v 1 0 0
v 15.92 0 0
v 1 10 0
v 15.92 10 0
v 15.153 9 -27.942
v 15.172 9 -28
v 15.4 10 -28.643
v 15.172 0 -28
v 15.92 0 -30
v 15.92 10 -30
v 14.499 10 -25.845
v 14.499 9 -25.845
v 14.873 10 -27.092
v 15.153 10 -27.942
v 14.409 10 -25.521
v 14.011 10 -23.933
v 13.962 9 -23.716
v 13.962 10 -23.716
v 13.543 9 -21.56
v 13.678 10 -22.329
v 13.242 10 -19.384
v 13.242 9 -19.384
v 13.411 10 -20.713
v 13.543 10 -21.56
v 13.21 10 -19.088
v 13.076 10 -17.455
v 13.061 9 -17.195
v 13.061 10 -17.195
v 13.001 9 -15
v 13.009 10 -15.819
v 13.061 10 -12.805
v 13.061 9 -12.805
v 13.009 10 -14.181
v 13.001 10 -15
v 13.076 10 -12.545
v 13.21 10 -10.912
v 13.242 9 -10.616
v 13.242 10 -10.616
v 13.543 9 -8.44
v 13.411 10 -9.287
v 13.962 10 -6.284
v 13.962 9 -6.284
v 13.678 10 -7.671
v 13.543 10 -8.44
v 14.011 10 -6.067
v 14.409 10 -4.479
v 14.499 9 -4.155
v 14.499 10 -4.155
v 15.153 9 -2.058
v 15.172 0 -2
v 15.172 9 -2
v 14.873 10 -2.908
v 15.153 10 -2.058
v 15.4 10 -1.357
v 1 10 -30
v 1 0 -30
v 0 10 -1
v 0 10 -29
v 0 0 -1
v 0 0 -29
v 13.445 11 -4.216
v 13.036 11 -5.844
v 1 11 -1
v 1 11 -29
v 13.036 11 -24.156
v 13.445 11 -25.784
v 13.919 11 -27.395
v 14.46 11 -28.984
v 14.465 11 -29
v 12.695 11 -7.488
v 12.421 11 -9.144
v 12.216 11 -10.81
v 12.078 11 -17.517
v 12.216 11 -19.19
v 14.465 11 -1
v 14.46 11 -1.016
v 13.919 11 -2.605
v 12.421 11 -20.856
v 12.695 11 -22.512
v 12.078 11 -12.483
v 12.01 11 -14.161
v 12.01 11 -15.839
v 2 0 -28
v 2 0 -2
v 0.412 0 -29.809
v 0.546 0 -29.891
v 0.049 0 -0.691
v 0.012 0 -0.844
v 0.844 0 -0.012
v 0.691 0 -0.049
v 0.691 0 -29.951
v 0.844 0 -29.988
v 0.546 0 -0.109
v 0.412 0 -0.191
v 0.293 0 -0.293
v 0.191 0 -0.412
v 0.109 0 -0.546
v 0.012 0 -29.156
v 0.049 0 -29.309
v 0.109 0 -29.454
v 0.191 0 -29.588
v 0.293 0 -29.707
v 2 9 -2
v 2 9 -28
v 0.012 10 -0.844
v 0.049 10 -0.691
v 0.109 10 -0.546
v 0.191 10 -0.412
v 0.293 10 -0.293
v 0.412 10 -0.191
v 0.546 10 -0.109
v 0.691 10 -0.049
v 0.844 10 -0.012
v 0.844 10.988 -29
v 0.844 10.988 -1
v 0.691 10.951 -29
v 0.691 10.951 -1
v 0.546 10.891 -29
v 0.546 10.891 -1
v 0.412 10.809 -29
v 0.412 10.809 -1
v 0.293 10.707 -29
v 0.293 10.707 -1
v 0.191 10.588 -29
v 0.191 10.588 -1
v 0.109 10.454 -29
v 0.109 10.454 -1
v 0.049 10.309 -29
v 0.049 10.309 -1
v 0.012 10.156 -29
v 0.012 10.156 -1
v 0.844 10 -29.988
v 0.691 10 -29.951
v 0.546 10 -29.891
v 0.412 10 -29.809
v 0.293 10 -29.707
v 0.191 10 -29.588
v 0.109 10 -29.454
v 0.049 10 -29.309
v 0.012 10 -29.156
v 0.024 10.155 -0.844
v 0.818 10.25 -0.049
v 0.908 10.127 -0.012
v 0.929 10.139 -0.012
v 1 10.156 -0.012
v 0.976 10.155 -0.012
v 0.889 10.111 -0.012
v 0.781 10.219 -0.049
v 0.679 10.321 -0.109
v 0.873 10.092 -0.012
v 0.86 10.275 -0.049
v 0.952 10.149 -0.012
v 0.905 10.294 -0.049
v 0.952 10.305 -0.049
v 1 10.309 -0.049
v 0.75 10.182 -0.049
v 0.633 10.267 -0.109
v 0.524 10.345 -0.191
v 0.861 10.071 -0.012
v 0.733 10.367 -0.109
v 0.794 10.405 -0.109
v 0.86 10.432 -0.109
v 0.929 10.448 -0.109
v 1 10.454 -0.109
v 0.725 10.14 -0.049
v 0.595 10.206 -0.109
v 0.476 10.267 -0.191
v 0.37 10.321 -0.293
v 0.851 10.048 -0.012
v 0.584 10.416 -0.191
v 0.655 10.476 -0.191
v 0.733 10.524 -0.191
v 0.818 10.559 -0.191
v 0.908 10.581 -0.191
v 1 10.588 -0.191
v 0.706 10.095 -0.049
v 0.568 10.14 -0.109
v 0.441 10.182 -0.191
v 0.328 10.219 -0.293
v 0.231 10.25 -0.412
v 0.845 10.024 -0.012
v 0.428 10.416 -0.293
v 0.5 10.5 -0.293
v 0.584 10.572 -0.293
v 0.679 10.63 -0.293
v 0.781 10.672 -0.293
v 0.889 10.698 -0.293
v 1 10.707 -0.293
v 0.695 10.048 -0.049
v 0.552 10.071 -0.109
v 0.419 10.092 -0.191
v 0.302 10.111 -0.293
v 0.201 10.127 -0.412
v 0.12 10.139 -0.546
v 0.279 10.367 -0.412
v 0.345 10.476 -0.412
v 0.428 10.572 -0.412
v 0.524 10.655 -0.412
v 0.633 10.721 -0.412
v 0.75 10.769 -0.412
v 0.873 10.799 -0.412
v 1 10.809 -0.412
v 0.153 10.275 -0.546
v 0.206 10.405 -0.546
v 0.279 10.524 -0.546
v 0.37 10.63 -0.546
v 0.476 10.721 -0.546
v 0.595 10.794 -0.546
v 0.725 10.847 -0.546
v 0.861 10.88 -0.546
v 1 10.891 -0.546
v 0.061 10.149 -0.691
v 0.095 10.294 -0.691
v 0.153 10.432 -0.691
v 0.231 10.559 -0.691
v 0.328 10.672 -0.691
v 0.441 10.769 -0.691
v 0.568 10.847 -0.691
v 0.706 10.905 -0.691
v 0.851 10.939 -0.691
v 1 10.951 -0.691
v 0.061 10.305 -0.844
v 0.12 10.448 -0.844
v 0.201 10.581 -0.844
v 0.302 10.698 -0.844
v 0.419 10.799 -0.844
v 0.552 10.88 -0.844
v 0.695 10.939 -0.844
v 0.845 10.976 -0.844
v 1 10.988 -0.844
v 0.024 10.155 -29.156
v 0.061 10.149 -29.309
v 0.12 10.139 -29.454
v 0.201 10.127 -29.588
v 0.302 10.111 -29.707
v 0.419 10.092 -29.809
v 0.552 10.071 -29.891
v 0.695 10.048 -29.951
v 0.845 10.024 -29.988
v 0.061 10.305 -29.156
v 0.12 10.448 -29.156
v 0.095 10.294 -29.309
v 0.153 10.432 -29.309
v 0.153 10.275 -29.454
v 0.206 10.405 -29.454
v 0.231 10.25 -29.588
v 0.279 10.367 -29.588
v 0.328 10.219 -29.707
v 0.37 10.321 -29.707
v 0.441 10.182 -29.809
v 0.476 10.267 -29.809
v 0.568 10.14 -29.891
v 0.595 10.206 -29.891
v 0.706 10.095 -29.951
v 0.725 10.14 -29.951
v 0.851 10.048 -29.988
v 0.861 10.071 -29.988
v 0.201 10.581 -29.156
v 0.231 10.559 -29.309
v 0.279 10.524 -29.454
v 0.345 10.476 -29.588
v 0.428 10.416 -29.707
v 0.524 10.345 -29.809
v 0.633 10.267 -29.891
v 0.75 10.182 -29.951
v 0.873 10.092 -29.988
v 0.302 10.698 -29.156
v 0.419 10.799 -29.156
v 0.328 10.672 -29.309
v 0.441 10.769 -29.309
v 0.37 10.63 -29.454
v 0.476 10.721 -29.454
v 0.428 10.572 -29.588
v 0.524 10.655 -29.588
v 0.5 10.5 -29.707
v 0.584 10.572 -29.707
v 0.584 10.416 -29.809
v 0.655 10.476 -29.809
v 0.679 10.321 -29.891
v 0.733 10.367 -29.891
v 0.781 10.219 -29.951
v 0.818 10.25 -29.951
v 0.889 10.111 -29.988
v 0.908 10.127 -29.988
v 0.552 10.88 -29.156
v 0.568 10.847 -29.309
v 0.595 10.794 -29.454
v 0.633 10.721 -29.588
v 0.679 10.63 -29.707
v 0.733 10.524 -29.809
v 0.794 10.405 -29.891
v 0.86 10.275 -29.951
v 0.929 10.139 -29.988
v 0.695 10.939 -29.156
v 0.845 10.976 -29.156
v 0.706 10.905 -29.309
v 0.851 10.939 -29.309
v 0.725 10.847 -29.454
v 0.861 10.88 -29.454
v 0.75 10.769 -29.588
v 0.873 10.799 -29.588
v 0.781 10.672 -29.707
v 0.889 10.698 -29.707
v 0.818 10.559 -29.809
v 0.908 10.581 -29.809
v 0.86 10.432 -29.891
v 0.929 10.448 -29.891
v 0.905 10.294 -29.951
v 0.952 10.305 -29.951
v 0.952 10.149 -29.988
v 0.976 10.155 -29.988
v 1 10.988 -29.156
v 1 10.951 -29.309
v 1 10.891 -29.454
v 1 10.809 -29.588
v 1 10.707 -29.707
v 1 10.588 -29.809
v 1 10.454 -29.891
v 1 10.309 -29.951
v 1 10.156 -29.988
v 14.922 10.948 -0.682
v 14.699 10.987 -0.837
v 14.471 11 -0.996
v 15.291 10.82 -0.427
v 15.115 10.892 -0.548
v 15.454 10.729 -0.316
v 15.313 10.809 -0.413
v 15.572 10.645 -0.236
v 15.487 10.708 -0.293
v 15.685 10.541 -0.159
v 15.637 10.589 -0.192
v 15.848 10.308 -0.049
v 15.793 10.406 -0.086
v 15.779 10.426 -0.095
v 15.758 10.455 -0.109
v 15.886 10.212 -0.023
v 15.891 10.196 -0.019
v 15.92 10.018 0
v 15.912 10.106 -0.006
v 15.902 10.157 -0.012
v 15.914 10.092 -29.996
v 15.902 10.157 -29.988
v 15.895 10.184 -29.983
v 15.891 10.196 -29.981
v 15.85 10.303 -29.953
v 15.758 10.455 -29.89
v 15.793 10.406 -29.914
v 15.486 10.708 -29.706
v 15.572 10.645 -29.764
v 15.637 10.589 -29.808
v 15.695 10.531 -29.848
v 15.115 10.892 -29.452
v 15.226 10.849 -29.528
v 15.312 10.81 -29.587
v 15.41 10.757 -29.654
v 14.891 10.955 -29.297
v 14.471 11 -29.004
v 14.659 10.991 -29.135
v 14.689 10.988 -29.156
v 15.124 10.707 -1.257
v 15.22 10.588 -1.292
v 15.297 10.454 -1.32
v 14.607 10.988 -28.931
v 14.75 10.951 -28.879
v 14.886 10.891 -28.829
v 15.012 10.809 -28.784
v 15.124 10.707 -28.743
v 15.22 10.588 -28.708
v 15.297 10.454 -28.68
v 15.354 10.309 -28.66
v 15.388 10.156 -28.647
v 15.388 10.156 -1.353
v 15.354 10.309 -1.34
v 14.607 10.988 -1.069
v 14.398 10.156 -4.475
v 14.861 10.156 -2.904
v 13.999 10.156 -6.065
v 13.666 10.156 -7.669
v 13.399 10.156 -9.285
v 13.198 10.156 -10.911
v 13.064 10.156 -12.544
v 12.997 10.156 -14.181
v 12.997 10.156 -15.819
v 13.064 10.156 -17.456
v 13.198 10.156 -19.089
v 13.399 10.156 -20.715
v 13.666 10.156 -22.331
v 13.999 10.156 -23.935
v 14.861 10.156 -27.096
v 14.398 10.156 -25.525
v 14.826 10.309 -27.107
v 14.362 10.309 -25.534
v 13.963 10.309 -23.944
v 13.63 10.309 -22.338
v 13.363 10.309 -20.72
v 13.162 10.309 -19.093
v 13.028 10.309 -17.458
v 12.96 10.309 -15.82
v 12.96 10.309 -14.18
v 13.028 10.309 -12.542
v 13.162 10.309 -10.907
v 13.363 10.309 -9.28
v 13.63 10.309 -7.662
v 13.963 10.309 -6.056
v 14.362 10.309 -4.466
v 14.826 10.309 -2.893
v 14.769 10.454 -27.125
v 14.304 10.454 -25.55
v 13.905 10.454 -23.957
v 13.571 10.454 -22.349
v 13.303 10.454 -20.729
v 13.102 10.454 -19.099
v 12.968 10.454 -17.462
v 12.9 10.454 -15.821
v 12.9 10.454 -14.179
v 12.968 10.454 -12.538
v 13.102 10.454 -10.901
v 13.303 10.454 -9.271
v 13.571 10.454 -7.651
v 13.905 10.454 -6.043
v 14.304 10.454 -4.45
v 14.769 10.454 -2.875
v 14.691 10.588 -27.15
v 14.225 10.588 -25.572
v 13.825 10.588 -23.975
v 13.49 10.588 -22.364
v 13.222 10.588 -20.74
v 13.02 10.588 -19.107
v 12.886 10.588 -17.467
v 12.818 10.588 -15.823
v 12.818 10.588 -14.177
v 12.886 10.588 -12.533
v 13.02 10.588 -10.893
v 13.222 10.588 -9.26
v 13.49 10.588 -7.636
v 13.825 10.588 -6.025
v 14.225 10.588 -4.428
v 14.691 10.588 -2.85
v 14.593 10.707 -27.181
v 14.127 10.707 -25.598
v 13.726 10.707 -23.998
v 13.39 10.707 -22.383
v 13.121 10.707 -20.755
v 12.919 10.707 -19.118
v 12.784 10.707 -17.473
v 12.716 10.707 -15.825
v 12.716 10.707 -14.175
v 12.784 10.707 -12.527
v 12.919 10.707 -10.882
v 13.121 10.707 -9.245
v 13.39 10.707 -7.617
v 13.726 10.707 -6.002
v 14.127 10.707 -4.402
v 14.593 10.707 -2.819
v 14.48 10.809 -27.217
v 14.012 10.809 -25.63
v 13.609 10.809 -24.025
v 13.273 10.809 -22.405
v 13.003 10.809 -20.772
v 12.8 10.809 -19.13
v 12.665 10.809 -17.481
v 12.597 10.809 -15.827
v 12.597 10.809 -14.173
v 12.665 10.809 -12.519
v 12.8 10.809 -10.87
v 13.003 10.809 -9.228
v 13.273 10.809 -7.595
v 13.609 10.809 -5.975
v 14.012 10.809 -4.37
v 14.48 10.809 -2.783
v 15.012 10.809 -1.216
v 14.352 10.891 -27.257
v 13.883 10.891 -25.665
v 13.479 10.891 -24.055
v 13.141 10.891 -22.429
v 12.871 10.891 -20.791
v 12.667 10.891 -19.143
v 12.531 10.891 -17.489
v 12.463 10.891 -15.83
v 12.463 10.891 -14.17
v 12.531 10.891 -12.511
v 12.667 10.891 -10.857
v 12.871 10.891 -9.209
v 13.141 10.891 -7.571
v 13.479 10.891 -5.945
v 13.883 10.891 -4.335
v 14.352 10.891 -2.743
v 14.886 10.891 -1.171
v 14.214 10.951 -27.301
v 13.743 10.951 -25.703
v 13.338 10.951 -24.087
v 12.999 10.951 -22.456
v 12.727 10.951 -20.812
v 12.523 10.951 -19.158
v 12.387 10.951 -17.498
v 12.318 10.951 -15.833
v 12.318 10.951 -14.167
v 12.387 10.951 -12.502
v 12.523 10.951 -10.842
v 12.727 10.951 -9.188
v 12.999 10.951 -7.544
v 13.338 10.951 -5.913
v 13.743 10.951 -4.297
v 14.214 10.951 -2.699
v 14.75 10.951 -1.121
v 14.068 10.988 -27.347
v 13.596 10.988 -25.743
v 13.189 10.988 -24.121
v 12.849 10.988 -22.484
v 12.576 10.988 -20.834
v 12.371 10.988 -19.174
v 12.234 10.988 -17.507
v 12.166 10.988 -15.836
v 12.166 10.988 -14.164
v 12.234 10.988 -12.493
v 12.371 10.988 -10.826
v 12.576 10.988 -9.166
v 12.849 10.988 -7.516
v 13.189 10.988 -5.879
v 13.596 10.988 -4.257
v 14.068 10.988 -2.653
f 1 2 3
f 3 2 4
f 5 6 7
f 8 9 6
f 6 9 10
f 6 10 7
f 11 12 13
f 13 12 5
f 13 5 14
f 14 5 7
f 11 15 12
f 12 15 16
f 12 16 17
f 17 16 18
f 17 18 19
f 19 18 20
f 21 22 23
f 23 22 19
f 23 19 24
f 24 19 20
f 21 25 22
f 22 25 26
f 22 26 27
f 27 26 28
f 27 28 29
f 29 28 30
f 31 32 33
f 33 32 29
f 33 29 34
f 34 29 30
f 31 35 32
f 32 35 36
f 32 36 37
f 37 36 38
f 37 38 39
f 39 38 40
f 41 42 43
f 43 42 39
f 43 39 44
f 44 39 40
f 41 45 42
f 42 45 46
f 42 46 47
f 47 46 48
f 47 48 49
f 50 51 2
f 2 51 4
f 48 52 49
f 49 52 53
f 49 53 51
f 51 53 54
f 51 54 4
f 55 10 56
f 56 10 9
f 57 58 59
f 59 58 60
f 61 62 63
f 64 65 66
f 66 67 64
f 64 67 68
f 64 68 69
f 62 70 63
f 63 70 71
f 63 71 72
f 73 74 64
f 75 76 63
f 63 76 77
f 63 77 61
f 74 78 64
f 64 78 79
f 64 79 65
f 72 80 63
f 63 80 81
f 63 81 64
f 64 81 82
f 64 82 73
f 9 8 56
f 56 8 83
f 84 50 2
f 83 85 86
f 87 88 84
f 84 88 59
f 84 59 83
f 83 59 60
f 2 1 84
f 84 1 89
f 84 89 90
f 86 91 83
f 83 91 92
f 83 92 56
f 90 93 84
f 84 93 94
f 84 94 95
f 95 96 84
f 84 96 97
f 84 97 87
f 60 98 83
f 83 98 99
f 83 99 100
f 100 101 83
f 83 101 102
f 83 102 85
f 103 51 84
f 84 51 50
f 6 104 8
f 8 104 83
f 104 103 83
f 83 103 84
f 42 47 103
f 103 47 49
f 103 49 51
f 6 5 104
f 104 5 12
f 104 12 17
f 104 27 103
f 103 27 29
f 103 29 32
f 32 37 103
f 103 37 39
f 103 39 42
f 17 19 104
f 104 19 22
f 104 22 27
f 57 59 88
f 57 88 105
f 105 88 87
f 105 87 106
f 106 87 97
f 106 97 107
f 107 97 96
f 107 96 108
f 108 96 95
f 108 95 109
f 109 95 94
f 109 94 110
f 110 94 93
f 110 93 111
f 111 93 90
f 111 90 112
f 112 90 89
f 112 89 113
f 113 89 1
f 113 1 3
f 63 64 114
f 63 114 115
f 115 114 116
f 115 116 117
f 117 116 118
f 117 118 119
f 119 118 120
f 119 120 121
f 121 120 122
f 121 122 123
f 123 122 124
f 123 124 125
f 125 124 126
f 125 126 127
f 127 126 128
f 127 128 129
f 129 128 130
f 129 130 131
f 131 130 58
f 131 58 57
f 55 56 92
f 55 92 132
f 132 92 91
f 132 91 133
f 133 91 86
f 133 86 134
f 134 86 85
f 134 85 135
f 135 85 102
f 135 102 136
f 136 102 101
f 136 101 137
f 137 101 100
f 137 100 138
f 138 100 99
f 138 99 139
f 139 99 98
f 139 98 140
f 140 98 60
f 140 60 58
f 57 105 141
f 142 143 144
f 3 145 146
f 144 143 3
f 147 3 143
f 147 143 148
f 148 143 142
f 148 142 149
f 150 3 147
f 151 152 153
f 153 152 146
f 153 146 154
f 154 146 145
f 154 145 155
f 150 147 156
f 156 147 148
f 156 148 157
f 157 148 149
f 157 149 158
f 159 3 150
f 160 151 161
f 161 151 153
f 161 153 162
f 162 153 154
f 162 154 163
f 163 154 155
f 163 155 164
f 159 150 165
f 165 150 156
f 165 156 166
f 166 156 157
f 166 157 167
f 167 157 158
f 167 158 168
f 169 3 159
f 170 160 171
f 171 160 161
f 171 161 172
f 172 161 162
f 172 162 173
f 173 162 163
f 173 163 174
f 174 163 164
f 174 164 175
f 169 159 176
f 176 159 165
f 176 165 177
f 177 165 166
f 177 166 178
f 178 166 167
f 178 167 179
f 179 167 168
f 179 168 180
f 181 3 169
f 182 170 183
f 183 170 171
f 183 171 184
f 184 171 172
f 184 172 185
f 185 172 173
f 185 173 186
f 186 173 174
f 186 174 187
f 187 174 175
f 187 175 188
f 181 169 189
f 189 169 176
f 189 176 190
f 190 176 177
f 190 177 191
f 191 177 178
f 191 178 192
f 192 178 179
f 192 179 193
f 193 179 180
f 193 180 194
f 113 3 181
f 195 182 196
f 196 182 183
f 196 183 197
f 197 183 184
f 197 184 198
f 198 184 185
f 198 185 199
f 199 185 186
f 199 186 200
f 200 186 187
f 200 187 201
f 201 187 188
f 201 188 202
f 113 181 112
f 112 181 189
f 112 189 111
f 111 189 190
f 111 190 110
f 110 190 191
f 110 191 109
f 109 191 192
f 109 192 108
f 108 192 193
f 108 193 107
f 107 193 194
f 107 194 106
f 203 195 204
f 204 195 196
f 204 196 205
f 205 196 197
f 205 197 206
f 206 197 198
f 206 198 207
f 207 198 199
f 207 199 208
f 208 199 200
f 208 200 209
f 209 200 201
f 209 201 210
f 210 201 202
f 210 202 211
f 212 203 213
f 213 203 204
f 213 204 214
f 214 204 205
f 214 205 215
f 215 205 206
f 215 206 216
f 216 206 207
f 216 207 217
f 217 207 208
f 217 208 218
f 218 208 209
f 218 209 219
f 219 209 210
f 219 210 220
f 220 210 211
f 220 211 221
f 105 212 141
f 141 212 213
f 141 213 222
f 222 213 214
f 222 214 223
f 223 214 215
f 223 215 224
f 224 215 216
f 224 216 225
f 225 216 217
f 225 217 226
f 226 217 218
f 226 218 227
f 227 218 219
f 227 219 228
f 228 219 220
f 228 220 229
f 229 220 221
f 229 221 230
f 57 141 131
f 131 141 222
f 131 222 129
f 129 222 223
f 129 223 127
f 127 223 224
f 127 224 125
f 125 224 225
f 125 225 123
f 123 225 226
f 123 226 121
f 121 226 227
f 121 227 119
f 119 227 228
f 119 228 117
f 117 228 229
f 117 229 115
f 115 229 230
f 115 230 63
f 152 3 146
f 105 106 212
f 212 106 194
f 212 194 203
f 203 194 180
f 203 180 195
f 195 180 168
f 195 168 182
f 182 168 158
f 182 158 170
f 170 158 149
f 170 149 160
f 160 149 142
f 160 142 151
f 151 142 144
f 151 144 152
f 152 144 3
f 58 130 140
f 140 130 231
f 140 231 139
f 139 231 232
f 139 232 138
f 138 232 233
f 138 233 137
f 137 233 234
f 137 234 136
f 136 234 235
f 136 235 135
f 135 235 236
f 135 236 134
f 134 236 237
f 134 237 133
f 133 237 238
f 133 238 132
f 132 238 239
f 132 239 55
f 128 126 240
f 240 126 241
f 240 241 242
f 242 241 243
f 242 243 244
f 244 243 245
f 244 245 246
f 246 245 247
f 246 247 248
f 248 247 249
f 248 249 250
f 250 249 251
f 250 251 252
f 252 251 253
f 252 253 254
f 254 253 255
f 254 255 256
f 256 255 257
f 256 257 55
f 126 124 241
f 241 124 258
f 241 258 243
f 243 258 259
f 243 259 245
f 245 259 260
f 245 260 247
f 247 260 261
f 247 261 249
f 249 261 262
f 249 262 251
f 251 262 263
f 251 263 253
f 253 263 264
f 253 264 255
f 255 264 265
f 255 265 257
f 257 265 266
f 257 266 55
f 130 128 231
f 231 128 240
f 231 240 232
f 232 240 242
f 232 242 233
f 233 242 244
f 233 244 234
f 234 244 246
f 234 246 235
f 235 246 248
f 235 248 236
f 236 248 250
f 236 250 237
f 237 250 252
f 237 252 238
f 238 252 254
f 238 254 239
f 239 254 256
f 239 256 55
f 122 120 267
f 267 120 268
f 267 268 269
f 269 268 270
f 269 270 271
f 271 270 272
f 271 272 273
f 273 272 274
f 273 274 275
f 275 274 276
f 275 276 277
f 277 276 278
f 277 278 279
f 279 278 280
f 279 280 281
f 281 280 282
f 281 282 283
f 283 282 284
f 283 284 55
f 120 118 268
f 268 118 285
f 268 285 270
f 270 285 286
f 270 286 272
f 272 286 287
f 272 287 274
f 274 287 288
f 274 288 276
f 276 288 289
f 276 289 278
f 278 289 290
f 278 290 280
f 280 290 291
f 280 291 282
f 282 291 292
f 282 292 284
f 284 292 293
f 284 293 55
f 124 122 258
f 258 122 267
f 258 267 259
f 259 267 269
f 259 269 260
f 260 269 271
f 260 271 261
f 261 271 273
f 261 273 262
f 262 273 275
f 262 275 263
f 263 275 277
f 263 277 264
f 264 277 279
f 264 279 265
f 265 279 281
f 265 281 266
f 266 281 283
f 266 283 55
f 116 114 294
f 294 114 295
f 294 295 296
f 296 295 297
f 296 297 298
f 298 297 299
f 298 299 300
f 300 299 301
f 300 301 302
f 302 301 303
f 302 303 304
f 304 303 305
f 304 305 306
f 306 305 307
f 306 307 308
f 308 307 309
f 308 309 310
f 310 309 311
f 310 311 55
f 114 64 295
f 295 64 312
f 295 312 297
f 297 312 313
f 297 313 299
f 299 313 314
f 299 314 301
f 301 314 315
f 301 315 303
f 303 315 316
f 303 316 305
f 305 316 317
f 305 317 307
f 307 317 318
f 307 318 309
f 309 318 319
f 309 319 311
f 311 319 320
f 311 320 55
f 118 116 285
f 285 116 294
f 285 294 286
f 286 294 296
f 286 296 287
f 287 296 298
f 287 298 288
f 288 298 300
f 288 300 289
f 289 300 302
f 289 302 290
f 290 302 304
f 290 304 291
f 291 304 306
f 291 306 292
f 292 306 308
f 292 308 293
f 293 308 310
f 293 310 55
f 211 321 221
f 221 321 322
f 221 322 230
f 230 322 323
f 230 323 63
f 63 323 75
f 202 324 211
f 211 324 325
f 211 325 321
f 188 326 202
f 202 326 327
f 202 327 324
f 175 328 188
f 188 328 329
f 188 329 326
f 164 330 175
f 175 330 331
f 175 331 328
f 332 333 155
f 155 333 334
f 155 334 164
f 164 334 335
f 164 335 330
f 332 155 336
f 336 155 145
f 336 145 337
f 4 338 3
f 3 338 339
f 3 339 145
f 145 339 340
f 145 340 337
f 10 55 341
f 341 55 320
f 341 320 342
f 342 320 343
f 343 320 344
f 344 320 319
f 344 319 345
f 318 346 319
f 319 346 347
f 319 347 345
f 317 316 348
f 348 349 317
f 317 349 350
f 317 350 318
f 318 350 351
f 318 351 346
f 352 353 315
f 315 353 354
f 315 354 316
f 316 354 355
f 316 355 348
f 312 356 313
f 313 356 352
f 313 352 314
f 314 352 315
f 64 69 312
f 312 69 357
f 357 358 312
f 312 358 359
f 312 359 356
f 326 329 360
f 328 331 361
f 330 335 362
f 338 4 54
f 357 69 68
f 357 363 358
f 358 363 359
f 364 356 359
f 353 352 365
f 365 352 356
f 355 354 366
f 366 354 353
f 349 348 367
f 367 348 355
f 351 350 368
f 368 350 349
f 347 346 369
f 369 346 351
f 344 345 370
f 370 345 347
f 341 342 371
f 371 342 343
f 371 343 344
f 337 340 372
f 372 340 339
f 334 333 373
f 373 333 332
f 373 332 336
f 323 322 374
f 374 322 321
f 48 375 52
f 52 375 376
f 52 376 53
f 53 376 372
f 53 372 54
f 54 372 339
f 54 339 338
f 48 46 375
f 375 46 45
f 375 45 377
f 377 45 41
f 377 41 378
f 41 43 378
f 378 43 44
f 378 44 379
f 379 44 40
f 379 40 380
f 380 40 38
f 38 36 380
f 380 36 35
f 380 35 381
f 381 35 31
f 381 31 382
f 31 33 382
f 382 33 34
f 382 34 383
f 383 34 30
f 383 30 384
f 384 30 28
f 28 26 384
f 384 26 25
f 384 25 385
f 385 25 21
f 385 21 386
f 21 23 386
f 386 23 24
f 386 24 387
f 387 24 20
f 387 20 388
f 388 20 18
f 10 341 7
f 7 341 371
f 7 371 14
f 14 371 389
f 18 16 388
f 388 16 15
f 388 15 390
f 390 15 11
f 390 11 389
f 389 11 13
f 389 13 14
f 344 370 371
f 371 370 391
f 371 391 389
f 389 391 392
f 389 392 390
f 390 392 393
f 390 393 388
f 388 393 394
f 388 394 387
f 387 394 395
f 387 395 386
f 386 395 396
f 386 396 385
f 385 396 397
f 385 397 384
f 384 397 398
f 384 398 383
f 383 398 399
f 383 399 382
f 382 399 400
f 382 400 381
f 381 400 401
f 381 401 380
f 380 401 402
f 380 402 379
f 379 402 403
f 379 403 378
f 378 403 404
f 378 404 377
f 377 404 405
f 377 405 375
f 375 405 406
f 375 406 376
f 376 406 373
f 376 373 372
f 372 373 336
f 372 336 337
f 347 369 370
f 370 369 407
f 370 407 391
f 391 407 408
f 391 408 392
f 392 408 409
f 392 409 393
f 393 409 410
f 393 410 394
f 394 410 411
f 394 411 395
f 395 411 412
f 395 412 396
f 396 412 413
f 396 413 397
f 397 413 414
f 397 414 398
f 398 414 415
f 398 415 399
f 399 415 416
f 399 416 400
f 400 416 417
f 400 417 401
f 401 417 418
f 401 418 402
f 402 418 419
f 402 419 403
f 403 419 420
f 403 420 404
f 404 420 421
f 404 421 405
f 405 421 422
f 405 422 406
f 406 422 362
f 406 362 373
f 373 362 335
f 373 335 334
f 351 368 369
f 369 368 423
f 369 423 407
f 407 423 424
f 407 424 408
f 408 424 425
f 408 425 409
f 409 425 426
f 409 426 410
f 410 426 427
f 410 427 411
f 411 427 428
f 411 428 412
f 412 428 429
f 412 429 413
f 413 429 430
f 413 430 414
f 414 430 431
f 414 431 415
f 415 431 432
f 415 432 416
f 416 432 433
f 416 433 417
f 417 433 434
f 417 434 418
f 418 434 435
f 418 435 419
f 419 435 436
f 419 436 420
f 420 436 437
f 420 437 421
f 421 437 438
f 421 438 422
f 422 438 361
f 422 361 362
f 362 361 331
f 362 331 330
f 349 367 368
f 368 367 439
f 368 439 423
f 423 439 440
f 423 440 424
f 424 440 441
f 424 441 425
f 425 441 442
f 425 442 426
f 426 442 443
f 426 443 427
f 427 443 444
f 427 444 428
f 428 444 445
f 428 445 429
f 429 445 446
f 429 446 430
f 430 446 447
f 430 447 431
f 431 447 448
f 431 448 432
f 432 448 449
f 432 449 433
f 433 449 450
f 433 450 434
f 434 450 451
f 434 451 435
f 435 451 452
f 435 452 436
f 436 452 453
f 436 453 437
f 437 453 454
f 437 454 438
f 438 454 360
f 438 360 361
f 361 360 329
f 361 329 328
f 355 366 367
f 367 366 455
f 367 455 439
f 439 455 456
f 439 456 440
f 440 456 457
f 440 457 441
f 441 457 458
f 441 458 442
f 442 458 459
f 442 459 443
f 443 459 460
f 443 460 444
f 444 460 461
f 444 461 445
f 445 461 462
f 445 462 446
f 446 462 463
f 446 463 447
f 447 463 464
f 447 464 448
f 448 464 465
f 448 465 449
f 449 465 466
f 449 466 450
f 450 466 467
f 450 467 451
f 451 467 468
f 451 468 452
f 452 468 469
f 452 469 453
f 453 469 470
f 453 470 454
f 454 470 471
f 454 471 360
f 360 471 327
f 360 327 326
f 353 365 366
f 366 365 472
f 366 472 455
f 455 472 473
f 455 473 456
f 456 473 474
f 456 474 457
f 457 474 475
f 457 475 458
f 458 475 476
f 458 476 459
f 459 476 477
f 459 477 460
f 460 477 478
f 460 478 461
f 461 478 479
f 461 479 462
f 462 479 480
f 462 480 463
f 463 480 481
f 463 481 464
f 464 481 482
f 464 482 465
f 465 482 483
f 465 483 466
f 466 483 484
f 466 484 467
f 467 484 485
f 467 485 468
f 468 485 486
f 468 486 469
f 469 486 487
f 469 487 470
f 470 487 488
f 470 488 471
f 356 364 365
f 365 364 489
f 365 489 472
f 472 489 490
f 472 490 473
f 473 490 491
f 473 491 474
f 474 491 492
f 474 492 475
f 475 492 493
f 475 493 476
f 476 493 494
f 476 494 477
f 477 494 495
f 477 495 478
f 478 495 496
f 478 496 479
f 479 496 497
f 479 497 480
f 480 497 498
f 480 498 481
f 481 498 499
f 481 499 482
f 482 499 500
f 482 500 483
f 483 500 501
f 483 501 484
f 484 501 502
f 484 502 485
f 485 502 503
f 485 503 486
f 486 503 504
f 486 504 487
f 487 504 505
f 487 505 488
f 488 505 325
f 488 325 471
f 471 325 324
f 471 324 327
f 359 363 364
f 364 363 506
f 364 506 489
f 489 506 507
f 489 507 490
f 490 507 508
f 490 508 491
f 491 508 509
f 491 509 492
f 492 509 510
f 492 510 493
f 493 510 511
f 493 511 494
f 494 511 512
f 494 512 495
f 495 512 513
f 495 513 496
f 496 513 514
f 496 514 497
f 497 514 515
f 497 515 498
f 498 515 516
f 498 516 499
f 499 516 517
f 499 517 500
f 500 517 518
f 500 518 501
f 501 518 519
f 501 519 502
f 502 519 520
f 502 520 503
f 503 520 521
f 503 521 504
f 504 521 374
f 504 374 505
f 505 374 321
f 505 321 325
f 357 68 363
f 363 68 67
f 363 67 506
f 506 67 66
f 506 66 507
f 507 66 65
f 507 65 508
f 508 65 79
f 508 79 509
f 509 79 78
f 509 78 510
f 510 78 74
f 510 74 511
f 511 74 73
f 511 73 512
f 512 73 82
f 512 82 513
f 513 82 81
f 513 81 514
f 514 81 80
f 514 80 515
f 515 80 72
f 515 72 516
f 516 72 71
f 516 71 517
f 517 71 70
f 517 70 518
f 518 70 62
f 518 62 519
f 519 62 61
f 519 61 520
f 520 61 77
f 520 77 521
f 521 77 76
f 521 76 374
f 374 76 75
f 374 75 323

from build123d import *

# Parameters (mm, degrees)
BOSS_EXTRUDE1_DEPTH = 11
SHELL1_T            = -2
FILLET1_R           = 1


with BuildPart() as part:
    # Sketch1 → Boss-Extrude1 (new body)
    with BuildSketch(Plane(origin=(0, 0, 0), x_dir=(1, 0, 0), z_dir=(0, 1, 0))):
        with BuildLine():
            Line((0, 0), (0, 30))
            Line((0, 30), (15.92, 30))
            ThreePointArc((15.92, 30), (13.000920011, 15), (15.92, 0))
            Line((15.92, 0), (0, 0))
        make_face()
    extrude(amount=BOSS_EXTRUDE1_DEPTH)

    # Shell1
    shell1_openings = [part.faces().sort_by_distance(p)[0] for p in [
        (7.00647131, 0, -15),
        (13.000920011, 5.5, -15),
    ]]
    offset(amount=SHELL1_T, openings=shell1_openings, kind=Kind.INTERSECTION)

    # Fillet1
    fillet1_edges = [part.edges().sort_by_distance(p)[0] for p in [
        (7.96, 11, -30),
        (0, 11, -15),
        (7.96, 11, 0),
        (0, 5.5, 0),
        (0, 5.5, -30),
        (13.000920011, 11, -15),
    ]]
    fillet(fillet1_edges, radius=FILLET1_R)


solid = part.part
